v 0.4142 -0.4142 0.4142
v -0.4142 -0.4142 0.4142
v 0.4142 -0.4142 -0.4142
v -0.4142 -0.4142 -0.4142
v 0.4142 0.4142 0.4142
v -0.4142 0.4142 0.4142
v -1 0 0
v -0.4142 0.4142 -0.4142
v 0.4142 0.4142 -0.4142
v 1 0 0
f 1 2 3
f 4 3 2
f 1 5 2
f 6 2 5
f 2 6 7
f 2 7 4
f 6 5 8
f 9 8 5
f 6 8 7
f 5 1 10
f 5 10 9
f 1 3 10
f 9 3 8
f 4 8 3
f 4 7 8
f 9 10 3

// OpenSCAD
polyhedron( points = [[-0.414213562403446, -0.414213562408705, 0.414213562395945], [-0.414213562366252, 0.414213562445897, 0.414213562395945], [0.414213562413969, 0.414213562371513, 0.414213562395945], [0.414213562376772, -0.414213562408705, 0.414213562395945], [-0.414213562366252, -0.414213562371512, -0.414213562384274], [-0.414213562329059, 0.414213562408709, -0.414213562384274], [0.414213562376772, 0.414213562334319, -0.414213562384274], [0.414213562339576, -0.414213562371515, -0.414213562384274], [-1.0, 6.63706560732363e-11, -2.33408570743775e-11], [0.999999999957921, -6.63731393681803e-11, -2.33433403693216e-11]], faces = [[0, 4, 7, 3], [0, 3, 2, 1], [0, 1, 8], [0, 8, 4], [1, 2, 6, 5], [1, 5, 8], [2, 3, 9], [2, 9, 6], [3, 7, 9], [4, 5, 6, 7], [4, 8, 5], [6, 9, 7]]);
